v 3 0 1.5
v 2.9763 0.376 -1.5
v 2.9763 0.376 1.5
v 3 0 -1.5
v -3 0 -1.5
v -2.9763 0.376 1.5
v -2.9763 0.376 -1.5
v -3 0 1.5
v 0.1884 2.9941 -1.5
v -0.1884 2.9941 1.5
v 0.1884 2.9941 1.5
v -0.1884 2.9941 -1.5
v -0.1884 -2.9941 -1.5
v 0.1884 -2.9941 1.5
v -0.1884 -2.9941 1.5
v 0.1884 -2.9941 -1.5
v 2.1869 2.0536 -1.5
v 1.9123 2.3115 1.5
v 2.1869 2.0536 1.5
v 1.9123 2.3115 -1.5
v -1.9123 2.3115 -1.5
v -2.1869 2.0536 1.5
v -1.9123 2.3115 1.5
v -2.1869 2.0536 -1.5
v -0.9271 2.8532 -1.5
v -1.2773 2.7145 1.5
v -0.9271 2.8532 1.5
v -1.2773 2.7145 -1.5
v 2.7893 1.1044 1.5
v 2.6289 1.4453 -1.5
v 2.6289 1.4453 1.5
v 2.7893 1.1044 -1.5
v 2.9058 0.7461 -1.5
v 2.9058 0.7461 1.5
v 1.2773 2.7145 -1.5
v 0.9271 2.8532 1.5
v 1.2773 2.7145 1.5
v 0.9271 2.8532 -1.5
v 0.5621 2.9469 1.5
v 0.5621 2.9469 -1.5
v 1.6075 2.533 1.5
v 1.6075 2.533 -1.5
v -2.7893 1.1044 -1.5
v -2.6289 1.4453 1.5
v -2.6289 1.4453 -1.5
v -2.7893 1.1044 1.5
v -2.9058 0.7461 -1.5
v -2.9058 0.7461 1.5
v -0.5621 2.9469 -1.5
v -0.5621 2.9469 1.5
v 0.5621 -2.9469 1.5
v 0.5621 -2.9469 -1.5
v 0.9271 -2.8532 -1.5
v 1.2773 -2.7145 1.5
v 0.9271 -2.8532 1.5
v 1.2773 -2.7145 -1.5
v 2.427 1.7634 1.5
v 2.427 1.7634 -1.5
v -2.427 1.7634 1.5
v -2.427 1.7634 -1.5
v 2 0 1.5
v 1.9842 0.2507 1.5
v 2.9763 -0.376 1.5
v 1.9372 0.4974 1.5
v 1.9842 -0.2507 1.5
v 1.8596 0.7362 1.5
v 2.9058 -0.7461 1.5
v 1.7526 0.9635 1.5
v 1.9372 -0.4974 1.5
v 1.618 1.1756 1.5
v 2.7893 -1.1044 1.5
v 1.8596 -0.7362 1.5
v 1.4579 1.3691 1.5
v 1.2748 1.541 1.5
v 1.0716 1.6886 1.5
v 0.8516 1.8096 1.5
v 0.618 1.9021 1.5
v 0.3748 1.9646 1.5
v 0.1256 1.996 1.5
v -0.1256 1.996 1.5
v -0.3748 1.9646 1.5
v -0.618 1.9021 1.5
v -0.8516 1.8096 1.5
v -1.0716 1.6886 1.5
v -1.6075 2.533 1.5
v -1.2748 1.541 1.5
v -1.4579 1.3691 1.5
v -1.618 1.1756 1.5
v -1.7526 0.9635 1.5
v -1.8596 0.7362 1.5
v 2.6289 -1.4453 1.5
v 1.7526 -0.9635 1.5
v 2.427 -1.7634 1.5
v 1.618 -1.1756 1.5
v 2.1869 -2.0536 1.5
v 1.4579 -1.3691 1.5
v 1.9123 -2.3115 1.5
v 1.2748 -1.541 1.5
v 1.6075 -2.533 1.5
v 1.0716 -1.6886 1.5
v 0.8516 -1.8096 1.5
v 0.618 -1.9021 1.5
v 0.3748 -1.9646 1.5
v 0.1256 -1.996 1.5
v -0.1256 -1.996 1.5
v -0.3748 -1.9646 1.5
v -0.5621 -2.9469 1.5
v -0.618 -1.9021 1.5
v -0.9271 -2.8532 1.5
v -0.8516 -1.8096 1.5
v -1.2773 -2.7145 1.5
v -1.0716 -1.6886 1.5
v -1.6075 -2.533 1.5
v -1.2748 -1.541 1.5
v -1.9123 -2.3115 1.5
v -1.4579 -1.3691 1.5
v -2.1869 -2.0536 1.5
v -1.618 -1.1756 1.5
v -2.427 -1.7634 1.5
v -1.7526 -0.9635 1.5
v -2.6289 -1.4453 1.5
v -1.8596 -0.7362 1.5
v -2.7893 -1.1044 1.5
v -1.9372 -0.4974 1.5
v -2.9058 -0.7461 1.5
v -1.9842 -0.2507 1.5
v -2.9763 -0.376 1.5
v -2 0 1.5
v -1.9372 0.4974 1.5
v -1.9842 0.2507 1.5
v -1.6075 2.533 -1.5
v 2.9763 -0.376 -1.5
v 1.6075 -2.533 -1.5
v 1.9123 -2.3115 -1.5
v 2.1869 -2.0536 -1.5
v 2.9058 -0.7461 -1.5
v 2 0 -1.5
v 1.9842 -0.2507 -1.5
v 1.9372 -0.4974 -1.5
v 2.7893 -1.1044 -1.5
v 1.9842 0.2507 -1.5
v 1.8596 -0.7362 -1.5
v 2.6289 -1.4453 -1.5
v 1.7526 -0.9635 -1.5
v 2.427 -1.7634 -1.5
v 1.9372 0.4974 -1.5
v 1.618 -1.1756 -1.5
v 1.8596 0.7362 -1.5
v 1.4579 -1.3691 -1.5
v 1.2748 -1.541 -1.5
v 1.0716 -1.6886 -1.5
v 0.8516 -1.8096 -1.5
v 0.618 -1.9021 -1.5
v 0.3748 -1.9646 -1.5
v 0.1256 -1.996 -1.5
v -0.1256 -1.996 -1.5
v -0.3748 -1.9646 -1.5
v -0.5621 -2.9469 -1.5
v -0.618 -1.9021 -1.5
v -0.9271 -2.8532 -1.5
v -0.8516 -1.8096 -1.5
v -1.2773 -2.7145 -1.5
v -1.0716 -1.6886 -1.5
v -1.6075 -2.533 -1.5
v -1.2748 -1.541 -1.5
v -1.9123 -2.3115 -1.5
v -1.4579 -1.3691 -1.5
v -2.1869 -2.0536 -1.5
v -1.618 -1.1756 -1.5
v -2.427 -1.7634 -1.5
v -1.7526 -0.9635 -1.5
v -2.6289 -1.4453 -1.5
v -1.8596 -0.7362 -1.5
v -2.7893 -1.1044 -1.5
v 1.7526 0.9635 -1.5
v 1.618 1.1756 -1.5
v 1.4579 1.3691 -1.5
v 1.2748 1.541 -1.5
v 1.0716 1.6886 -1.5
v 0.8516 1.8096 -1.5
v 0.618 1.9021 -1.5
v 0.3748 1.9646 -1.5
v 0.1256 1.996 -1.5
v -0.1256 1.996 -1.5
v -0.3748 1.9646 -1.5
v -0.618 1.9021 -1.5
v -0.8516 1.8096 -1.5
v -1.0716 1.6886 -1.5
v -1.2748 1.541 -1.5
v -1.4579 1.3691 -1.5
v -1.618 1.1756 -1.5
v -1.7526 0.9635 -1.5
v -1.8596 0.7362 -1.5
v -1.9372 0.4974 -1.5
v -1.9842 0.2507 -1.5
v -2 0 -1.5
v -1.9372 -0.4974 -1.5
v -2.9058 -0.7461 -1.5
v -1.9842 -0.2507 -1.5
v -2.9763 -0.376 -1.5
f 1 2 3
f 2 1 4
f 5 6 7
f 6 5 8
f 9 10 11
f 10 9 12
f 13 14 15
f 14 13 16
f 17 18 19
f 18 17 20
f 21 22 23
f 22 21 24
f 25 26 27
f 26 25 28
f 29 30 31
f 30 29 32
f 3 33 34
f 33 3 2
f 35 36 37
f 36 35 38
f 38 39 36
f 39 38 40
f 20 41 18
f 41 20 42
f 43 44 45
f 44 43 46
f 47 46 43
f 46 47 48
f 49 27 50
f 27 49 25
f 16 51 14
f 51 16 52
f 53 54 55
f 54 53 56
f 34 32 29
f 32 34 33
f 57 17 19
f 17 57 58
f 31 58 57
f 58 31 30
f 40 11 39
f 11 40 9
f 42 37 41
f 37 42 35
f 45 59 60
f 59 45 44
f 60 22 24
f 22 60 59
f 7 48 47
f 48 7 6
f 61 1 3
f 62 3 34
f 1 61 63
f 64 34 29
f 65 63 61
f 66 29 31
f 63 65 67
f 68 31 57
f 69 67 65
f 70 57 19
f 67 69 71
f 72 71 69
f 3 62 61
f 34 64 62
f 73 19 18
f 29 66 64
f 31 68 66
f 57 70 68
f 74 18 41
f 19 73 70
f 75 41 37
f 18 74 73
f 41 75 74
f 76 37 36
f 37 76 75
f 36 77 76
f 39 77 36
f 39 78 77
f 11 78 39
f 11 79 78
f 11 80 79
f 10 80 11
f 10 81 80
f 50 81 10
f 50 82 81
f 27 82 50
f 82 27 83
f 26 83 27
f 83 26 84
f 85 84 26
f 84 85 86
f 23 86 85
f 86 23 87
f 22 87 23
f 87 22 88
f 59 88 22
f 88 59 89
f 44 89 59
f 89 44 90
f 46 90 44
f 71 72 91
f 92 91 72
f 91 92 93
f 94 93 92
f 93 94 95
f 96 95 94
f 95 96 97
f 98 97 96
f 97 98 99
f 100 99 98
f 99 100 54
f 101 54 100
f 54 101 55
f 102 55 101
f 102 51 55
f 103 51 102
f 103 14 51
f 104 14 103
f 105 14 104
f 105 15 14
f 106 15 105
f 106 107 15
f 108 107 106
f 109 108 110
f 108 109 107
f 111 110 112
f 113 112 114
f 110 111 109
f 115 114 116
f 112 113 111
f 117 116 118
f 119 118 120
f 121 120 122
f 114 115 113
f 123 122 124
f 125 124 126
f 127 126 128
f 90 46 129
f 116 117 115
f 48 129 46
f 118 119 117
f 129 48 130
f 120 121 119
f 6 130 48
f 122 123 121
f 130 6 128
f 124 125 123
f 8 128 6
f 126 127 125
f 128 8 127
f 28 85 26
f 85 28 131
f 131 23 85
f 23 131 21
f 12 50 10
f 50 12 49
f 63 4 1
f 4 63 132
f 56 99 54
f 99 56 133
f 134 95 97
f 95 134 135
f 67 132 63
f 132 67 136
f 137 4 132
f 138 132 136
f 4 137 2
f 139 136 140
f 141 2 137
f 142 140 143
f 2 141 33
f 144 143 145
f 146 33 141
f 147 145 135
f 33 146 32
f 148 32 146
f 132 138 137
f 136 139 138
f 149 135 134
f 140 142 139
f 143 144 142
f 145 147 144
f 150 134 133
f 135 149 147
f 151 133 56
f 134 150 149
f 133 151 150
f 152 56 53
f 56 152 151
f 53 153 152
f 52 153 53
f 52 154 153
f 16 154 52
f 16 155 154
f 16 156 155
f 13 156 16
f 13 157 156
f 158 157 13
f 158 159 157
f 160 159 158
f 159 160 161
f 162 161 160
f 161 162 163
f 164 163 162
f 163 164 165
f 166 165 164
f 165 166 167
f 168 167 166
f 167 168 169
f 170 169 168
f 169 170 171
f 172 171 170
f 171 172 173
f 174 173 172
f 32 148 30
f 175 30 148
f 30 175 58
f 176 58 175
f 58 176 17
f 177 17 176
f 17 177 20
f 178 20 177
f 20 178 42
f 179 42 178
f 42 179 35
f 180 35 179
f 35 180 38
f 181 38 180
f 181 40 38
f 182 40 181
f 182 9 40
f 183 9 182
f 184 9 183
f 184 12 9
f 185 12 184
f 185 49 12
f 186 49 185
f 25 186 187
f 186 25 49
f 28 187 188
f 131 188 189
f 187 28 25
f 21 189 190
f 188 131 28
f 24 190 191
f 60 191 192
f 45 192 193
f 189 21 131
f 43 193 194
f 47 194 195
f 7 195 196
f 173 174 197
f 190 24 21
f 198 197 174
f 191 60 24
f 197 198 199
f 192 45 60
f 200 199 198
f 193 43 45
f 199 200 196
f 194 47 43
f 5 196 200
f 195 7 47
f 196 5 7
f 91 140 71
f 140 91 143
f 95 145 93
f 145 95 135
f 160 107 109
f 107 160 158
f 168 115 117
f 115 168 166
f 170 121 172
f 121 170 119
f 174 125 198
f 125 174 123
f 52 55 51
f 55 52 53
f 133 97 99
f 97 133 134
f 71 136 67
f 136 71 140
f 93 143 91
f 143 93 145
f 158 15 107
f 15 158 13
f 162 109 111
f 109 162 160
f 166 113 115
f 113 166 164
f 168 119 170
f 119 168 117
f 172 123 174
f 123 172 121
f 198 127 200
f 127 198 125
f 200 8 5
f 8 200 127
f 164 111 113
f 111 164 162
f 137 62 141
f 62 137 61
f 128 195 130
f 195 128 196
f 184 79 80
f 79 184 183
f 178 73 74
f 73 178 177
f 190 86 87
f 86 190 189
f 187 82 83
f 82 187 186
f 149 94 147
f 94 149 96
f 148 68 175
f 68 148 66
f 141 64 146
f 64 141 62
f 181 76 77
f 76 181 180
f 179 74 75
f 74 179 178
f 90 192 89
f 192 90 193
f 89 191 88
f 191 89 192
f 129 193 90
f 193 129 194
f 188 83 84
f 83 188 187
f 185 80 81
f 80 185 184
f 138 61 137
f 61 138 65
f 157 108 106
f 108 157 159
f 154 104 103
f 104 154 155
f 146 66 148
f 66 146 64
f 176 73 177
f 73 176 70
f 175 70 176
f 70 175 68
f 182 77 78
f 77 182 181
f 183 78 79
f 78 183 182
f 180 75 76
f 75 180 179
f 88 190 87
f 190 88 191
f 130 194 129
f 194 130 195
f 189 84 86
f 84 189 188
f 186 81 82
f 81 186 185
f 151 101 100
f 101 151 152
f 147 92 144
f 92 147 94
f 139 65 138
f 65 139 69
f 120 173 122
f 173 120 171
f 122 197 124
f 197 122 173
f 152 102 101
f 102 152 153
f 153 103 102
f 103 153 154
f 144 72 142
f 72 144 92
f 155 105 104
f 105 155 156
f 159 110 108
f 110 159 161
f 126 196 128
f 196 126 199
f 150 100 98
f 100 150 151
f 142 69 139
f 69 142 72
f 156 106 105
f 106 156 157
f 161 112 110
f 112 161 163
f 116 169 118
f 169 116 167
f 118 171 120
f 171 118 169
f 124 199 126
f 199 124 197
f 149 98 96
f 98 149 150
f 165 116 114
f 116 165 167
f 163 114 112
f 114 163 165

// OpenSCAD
$fn = 50;


difference() {
	union() {
		translate(v = [0, 0, -1.5000000000]) {
			cylinder(h = 3, r = 3.0000000000);
		}
	}
	union() {
		translate(v = [0, 0, -100.0000000000]) {
			cylinder(h = 200, r = 2.0000000000);
		}
	}
}
